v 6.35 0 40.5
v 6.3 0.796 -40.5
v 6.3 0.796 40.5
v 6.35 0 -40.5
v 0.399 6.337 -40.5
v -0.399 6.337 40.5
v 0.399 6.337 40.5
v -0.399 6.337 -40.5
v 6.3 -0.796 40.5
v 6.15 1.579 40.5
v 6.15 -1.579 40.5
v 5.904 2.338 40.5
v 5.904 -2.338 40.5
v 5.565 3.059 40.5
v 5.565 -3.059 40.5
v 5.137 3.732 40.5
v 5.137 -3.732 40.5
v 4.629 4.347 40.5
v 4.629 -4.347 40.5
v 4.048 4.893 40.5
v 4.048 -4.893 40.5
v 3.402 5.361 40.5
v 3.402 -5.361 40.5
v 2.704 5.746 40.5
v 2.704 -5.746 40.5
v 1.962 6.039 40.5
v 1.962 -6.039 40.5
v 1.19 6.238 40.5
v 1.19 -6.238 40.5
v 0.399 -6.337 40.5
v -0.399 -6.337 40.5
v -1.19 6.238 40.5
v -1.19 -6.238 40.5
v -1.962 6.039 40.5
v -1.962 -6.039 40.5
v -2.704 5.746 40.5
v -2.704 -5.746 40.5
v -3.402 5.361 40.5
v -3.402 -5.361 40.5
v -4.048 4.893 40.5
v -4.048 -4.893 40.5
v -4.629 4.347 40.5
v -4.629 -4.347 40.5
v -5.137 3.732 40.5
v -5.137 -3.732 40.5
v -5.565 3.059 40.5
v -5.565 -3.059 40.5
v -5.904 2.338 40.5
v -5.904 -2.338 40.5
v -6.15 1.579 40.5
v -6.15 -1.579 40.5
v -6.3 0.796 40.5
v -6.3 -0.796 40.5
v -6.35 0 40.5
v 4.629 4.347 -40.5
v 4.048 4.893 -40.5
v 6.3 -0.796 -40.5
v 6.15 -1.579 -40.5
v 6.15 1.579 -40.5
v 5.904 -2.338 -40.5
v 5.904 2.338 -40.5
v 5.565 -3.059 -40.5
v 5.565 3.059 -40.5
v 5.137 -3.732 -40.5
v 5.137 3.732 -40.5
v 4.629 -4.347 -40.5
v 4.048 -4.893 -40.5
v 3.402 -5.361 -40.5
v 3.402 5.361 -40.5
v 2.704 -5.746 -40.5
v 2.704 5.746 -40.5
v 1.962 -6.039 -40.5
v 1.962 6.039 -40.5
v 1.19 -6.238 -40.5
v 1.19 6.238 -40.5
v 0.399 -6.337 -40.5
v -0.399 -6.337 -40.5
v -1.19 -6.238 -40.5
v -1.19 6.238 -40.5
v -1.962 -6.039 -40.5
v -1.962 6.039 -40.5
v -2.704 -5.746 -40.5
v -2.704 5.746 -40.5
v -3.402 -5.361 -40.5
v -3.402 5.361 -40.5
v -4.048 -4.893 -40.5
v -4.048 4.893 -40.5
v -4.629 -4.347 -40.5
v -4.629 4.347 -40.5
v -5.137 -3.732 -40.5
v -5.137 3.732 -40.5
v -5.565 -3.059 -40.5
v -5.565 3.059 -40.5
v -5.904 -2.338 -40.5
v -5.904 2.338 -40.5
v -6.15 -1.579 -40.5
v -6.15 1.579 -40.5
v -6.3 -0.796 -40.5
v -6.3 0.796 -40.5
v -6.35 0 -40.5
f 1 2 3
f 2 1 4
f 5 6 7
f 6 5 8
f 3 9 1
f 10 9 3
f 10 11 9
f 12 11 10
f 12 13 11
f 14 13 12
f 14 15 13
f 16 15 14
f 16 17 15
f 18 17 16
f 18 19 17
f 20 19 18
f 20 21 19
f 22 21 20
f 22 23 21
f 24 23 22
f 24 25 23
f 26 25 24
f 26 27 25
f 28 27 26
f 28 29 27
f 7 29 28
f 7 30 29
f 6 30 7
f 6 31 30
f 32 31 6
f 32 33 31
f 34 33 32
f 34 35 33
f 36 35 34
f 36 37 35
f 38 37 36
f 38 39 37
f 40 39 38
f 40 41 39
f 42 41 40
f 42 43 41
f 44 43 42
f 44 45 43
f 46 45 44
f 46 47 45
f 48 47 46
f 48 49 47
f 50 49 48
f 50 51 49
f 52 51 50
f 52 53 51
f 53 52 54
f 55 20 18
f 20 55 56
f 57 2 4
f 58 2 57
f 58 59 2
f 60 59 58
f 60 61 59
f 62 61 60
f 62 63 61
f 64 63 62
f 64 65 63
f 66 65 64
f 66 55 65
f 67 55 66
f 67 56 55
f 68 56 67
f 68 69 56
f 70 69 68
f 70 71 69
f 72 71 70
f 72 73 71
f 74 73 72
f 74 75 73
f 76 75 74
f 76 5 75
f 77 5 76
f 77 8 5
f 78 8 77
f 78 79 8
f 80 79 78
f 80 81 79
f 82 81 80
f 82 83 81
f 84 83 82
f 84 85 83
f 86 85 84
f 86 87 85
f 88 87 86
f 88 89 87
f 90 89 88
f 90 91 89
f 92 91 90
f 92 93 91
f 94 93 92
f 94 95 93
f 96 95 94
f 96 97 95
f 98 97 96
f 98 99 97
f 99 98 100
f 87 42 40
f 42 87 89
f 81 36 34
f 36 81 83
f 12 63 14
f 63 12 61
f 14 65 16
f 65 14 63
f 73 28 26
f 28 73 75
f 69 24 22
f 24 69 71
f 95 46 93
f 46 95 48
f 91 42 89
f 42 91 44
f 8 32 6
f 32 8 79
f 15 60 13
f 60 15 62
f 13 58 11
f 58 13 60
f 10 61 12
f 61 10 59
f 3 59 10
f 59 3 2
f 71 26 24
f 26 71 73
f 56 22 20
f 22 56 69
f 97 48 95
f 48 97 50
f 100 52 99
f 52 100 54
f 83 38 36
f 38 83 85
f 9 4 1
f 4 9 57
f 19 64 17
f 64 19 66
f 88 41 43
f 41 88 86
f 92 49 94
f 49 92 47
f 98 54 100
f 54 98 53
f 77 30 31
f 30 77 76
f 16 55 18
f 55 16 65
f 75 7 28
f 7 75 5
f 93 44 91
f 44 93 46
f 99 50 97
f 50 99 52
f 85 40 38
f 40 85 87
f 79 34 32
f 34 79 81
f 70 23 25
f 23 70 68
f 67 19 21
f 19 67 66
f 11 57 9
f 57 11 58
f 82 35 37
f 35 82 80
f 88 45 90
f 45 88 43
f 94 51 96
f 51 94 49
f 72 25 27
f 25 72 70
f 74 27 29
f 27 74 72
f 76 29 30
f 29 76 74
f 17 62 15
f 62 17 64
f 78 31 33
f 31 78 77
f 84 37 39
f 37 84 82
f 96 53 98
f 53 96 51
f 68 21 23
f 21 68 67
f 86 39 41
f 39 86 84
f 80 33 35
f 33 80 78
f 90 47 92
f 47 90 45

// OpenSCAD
$fn = 50;


difference() {
	union() {
		translate(v = [0, 0, -40.5000000000]) {
			cylinder(h = 81, r = 6.3500000000);
		}
	}
	union() {
		translate(v = [0, 0, -100.0000000000]) {
			cylinder(h = 200, r = 0);
		}
	}
}
